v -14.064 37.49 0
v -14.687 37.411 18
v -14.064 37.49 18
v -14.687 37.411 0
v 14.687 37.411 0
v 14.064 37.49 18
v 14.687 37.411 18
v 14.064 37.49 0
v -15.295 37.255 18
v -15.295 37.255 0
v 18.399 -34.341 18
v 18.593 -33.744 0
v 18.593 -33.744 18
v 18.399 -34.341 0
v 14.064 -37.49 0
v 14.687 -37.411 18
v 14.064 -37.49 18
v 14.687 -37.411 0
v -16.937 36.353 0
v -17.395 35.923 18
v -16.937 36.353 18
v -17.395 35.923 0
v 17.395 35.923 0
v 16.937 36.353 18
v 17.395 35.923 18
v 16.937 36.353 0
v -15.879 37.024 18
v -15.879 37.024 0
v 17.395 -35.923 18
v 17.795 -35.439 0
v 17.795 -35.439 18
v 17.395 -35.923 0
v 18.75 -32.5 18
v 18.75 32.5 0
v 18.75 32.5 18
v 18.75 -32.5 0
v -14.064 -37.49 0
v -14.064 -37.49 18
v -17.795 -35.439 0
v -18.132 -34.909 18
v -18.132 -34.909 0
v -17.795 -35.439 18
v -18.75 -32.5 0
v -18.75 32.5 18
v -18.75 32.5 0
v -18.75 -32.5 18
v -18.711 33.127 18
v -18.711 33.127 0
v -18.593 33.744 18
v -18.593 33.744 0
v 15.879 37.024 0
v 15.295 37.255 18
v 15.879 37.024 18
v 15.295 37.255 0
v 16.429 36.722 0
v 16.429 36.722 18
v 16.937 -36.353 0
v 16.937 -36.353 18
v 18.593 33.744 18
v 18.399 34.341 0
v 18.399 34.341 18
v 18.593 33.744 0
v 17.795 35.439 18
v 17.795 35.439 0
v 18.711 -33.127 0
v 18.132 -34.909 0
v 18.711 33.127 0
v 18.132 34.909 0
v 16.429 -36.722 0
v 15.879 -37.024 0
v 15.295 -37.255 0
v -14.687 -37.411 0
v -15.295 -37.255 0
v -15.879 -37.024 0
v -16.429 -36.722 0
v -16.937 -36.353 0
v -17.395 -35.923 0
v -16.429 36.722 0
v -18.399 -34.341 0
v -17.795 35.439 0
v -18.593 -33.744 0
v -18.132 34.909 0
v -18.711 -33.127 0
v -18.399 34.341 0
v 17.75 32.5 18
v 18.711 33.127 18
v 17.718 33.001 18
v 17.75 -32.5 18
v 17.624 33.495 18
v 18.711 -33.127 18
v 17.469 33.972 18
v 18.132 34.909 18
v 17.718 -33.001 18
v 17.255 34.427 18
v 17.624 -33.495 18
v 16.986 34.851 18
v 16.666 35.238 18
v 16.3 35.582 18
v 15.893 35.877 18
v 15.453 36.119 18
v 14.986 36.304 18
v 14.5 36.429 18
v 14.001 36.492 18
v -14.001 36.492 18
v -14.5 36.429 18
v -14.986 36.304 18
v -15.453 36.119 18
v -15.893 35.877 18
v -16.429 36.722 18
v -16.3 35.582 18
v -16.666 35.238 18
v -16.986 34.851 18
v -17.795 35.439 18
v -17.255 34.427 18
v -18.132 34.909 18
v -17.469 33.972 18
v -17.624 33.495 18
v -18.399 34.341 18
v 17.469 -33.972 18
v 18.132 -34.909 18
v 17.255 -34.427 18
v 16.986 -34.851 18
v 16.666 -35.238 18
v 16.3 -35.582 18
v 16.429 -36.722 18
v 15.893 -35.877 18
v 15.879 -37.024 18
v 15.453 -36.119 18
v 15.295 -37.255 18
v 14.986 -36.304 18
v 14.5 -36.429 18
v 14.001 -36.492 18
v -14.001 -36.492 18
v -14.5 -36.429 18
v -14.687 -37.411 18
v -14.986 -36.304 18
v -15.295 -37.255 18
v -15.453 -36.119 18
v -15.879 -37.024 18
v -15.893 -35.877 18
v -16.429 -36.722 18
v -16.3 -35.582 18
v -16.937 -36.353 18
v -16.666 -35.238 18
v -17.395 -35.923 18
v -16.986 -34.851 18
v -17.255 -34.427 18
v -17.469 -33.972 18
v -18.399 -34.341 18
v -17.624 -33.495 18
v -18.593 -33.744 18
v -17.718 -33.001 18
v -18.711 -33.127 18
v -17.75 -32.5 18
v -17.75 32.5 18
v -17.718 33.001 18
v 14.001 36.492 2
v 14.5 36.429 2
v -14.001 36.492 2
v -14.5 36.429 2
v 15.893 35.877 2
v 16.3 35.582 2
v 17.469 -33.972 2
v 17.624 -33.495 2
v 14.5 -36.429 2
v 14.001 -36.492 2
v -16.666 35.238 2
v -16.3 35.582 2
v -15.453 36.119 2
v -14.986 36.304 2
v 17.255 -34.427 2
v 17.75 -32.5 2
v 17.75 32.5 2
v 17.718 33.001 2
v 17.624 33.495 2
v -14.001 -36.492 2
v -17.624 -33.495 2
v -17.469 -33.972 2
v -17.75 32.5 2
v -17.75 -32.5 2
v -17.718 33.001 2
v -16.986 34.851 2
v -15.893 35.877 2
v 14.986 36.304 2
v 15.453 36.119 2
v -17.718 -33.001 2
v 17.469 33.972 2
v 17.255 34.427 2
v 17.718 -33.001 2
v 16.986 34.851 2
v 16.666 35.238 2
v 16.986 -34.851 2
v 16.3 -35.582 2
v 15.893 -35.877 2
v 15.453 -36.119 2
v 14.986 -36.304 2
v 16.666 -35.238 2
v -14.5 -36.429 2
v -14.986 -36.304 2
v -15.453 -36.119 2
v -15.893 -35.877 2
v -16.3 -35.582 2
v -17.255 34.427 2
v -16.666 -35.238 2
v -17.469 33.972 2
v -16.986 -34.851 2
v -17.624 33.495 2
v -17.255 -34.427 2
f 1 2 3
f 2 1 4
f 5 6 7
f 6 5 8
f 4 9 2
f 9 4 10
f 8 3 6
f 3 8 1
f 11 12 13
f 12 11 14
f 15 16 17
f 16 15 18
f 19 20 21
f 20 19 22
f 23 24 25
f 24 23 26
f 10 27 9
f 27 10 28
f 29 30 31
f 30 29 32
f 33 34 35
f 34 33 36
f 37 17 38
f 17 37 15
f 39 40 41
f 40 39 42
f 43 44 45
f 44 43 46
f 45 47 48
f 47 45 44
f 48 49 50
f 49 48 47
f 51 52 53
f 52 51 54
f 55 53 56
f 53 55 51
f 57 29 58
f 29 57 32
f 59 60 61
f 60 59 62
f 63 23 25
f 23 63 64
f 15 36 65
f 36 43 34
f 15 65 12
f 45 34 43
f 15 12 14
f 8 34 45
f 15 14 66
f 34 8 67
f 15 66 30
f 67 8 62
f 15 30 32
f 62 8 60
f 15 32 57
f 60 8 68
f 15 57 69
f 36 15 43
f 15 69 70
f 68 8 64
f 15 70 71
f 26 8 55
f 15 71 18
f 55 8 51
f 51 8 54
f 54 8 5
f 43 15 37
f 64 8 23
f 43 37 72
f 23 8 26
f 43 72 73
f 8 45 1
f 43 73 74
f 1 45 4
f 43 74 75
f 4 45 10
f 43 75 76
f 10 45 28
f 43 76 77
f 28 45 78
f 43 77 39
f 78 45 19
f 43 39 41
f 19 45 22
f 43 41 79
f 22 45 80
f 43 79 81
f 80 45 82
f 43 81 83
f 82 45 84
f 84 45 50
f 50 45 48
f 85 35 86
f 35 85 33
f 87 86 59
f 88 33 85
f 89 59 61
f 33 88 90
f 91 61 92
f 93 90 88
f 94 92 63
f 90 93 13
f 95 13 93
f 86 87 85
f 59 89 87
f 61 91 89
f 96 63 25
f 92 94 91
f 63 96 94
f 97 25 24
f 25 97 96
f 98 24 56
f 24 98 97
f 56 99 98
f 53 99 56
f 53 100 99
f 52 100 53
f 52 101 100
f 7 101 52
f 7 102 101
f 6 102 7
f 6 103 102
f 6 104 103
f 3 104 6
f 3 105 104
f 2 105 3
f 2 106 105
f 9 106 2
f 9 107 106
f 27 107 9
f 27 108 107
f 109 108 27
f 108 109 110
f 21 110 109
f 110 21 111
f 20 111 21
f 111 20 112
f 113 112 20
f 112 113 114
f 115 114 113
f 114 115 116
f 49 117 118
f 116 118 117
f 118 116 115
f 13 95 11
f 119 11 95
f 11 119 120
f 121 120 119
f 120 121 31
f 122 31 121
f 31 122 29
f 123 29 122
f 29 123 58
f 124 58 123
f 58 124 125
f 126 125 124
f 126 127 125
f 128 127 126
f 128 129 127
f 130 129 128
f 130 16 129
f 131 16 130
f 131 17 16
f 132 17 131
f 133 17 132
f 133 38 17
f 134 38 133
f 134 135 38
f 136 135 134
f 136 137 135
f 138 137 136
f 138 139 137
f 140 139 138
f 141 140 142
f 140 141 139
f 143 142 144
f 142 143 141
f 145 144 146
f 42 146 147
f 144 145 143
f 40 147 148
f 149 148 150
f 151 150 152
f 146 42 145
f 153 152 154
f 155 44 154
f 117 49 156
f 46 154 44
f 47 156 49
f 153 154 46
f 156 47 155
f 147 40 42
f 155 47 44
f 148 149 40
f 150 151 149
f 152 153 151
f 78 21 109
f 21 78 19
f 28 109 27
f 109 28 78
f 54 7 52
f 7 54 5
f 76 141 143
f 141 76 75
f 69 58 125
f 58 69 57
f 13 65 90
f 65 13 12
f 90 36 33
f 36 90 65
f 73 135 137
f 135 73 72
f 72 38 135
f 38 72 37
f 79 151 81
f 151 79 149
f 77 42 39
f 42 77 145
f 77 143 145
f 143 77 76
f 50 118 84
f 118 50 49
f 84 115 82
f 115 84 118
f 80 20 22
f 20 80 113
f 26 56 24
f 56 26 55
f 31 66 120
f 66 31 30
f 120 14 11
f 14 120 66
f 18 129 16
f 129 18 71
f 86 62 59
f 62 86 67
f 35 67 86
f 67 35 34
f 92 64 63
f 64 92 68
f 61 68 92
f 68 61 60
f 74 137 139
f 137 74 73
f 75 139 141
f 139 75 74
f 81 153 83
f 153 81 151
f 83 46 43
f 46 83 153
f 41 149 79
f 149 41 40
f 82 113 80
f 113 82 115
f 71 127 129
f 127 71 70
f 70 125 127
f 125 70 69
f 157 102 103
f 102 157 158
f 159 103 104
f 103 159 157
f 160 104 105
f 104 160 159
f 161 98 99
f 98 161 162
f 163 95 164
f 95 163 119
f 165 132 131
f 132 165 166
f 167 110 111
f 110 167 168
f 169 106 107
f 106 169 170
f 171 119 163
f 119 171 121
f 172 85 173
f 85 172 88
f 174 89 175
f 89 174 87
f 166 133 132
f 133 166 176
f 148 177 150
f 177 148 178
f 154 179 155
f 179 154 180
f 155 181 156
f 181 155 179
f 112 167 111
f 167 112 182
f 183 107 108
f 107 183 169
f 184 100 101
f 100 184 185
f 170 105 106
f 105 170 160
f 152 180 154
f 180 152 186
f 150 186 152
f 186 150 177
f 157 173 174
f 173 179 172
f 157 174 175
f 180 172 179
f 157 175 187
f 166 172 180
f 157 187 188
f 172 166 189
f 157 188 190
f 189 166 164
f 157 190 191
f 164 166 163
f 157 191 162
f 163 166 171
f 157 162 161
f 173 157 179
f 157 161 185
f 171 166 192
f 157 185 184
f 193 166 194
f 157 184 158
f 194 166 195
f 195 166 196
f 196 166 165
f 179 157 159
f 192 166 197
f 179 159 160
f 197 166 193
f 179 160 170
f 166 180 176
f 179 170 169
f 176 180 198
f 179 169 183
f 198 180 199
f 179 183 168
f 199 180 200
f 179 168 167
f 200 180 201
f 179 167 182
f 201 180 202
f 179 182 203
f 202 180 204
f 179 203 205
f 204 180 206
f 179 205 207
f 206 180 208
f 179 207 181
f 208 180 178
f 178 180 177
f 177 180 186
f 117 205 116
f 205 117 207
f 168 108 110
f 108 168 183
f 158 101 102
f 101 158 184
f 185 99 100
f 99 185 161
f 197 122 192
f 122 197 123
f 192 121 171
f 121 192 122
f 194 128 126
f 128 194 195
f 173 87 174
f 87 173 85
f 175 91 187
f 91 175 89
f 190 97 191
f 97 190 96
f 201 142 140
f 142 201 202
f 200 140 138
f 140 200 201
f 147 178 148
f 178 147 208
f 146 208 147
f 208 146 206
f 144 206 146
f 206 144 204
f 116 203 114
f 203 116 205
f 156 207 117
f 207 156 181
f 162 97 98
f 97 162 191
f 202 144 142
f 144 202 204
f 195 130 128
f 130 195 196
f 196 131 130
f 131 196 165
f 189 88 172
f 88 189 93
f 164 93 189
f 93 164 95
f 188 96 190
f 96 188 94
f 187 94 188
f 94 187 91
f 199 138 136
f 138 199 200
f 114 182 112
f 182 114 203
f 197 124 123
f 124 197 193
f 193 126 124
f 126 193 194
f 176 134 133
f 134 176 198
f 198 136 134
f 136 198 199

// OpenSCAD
$fn = 50;


difference() {
	union() {
		hull() {
			translate(v = [-13.7500000000, 32.5000000000, 0]) {
				cylinder(h = 18, r = 5);
			}
			translate(v = [13.7500000000, 32.5000000000, 0]) {
				cylinder(h = 18, r = 5);
			}
			translate(v = [-13.7500000000, -32.5000000000, 0]) {
				cylinder(h = 18, r = 5);
			}
			translate(v = [13.7500000000, -32.5000000000, 0]) {
				cylinder(h = 18, r = 5);
			}
		}
	}
	union() {
		translate(v = [0, 0, 2]) {
			hull() {
				translate(v = [-13.7500000000, 32.5000000000, 0]) {
					cylinder(h = 16, r = 4);
				}
				translate(v = [13.7500000000, 32.5000000000, 0]) {
					cylinder(h = 16, r = 4);
				}
				translate(v = [-13.7500000000, -32.5000000000, 0]) {
					cylinder(h = 16, r = 4);
				}
				translate(v = [13.7500000000, -32.5000000000, 0]) {
					cylinder(h = 16, r = 4);
				}
			}
		}
	}
}
